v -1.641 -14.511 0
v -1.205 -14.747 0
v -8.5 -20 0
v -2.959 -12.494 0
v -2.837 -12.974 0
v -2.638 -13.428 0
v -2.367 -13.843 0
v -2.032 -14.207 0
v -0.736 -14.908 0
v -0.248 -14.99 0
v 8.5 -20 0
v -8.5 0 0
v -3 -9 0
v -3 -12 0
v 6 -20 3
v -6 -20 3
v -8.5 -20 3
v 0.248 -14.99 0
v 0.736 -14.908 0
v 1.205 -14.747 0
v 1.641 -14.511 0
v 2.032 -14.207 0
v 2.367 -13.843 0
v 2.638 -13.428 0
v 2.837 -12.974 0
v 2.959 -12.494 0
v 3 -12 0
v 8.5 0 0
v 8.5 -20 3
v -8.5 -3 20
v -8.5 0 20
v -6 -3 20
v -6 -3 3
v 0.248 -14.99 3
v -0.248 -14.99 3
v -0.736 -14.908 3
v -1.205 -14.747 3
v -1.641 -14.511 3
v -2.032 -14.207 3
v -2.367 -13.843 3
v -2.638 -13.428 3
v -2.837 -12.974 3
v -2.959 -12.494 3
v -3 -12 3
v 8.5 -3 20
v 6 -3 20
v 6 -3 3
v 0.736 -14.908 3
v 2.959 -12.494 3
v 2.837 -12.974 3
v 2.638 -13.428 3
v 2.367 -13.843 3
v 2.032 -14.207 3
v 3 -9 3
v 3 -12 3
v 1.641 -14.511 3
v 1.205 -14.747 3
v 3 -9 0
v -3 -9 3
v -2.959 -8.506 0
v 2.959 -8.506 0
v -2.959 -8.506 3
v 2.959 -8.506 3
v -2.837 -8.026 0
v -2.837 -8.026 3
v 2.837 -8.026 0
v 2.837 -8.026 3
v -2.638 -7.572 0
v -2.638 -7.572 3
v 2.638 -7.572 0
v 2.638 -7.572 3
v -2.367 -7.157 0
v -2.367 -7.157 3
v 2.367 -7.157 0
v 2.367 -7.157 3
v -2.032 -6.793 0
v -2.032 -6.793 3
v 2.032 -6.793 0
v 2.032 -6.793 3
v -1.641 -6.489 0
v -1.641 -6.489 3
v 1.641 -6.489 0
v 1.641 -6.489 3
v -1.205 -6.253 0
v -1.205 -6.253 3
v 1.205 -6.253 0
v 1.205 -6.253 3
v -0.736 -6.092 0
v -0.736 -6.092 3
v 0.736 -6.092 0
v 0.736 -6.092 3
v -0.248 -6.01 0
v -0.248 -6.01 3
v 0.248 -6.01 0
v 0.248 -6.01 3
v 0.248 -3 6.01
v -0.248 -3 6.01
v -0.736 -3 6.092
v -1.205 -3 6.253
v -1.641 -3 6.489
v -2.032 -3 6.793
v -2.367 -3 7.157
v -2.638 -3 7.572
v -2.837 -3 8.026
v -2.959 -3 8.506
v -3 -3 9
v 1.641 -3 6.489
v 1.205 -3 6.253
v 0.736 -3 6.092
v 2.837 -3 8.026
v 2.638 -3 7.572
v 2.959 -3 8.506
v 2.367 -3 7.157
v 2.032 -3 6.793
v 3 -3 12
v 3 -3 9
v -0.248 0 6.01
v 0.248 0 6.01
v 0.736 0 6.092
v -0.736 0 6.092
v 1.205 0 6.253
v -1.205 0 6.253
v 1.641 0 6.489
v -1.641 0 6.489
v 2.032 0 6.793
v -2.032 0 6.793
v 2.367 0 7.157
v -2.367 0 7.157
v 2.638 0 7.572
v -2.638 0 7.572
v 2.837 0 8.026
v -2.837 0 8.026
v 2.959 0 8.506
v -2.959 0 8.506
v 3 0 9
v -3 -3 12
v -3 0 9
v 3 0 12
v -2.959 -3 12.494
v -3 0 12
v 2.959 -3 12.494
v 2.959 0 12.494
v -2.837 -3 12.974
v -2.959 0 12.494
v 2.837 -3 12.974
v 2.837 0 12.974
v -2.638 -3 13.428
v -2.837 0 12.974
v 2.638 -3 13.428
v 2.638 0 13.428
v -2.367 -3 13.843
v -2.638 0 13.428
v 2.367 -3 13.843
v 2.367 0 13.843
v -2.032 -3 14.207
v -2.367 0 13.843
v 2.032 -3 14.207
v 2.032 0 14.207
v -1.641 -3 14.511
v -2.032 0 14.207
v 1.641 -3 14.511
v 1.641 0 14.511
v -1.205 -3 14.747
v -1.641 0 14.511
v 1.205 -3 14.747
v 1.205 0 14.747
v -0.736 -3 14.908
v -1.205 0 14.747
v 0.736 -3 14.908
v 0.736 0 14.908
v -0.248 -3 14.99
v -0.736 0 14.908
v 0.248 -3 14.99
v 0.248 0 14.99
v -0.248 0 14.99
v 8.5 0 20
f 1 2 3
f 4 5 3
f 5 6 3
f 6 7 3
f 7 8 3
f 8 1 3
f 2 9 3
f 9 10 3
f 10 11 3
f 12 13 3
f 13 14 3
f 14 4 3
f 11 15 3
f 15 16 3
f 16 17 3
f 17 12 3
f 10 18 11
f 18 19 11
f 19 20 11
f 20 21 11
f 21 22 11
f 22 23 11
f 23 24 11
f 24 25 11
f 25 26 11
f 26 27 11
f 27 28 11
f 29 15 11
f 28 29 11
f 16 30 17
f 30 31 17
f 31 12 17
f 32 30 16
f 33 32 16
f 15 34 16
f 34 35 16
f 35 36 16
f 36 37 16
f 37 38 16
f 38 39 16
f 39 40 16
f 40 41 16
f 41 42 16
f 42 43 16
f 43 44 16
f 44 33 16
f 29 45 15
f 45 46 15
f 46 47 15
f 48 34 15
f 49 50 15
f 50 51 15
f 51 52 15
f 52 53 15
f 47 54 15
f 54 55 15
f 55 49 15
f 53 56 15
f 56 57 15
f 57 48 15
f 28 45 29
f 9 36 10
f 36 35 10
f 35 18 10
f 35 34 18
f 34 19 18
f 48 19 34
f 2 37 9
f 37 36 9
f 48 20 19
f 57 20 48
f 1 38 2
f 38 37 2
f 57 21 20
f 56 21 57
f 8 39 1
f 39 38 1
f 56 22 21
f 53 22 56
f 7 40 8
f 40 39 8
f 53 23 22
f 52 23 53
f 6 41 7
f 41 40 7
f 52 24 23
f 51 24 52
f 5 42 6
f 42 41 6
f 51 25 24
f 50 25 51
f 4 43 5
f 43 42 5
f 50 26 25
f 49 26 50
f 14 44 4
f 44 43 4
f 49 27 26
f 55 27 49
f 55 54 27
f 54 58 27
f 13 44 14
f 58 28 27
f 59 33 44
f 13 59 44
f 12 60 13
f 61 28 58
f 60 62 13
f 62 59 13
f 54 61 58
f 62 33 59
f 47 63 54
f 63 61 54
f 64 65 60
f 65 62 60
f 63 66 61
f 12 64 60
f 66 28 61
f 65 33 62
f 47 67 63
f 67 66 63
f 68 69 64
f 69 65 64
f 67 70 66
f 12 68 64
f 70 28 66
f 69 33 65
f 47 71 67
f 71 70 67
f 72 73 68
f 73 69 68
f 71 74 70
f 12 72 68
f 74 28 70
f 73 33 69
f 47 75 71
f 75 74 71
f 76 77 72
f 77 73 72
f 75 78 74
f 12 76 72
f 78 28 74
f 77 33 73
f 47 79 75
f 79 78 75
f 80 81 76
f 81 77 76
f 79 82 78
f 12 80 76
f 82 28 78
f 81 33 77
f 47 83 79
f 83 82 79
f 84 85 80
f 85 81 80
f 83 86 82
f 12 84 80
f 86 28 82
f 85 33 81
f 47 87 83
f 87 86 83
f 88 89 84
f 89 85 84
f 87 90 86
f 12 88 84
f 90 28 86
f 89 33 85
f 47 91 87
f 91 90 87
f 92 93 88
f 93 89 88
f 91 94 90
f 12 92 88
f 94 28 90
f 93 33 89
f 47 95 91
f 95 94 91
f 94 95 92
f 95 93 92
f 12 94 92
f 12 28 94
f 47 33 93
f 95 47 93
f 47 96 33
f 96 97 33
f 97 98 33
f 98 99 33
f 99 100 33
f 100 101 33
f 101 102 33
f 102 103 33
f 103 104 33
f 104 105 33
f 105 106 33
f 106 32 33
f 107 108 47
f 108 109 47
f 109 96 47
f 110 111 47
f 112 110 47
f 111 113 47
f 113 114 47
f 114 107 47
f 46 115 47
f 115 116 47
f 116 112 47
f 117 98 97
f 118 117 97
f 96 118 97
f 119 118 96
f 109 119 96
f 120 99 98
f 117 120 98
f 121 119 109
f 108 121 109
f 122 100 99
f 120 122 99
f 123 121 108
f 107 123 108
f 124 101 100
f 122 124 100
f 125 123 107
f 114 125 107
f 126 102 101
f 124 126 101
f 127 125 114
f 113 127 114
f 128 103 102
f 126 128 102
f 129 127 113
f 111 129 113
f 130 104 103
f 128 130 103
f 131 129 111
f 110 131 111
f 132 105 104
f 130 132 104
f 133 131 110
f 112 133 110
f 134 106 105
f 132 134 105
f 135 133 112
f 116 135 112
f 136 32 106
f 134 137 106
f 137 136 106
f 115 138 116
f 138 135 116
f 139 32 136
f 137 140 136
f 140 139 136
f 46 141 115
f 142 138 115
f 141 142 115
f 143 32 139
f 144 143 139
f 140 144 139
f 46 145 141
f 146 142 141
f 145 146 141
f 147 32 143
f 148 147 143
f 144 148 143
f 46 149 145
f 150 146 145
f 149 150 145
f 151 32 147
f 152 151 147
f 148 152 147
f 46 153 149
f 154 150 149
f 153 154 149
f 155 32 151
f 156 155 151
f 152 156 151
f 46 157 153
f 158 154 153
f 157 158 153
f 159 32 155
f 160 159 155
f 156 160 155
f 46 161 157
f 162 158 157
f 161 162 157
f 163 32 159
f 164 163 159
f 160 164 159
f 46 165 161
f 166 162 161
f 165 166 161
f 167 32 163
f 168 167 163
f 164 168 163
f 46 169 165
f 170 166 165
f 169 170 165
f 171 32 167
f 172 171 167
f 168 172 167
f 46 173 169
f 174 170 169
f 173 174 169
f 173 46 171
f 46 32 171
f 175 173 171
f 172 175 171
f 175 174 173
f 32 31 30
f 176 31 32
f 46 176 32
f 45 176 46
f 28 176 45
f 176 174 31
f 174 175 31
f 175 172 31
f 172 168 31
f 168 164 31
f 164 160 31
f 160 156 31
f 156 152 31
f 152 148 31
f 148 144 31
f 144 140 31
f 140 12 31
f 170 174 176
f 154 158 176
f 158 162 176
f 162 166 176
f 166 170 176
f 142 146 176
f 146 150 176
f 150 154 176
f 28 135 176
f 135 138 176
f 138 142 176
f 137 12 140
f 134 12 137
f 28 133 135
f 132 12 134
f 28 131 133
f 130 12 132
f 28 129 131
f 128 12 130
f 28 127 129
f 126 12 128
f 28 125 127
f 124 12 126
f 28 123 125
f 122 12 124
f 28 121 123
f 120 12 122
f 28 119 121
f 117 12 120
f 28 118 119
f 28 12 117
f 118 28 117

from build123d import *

# Parameters (mm, degrees)
BOSS_EXTRUDE1_DEPTH = 8.5
SKETCH2_W           = 17
SKETCH2_H           = 17
CUT_EXTRUDE1_DEPTH  = 6
CUT_EXTRUDE2_DEPTH  = 3


with BuildPart() as part:
    # Sketch1 → Boss-Extrude1 (new body, symmetric)
    with BuildSketch(Plane(origin=(0, 0, 0), x_dir=(0, 0, -1), z_dir=(1, 0, 0))):
        Polygon((0, 0), (-20, 0), (-20, -3), (-11.5, -11.5), (-3, -20), (0, -20), align=None)
    extrude(amount=BOSS_EXTRUDE1_DEPTH, both=True)

    # Sketch2 → Cut-Extrude1 (cut, symmetric)
    with BuildSketch(Plane(origin=(0, 0, 0), x_dir=(0, 0, -1), z_dir=(1, 0, 0))):
        with Locations((-11.5, -11.5)):
            Rectangle(SKETCH2_W, SKETCH2_H)
    extrude(amount=CUT_EXTRUDE1_DEPTH, both=True, mode=Mode.SUBTRACT)

    # Sketch3 → Cut-Extrude2 (cut)
    with BuildSketch(Plane.XY.offset(3)):
        with BuildLine():
            Line((-3, -9), (-3, -12))
            ThreePointArc((-3, -12), (0, -15), (3, -12))
            Line((3, -12), (3, -9))
            ThreePointArc((3, -9), (0, -6), (-3, -9))
        make_face()
    cut_extrude2 = extrude(amount=-CUT_EXTRUDE2_DEPTH, mode=Mode.SUBTRACT)

    # Mirror1: Cut-Extrude2 across plane
    add(cut_extrude2.mirror(Plane(origin=(0, 0, 0), x_dir=(0, -0.707106781, 0.707106781), z_dir=(0, 0.707106781, 0.707106781))), mode=Mode.SUBTRACT)


solid = part.part
